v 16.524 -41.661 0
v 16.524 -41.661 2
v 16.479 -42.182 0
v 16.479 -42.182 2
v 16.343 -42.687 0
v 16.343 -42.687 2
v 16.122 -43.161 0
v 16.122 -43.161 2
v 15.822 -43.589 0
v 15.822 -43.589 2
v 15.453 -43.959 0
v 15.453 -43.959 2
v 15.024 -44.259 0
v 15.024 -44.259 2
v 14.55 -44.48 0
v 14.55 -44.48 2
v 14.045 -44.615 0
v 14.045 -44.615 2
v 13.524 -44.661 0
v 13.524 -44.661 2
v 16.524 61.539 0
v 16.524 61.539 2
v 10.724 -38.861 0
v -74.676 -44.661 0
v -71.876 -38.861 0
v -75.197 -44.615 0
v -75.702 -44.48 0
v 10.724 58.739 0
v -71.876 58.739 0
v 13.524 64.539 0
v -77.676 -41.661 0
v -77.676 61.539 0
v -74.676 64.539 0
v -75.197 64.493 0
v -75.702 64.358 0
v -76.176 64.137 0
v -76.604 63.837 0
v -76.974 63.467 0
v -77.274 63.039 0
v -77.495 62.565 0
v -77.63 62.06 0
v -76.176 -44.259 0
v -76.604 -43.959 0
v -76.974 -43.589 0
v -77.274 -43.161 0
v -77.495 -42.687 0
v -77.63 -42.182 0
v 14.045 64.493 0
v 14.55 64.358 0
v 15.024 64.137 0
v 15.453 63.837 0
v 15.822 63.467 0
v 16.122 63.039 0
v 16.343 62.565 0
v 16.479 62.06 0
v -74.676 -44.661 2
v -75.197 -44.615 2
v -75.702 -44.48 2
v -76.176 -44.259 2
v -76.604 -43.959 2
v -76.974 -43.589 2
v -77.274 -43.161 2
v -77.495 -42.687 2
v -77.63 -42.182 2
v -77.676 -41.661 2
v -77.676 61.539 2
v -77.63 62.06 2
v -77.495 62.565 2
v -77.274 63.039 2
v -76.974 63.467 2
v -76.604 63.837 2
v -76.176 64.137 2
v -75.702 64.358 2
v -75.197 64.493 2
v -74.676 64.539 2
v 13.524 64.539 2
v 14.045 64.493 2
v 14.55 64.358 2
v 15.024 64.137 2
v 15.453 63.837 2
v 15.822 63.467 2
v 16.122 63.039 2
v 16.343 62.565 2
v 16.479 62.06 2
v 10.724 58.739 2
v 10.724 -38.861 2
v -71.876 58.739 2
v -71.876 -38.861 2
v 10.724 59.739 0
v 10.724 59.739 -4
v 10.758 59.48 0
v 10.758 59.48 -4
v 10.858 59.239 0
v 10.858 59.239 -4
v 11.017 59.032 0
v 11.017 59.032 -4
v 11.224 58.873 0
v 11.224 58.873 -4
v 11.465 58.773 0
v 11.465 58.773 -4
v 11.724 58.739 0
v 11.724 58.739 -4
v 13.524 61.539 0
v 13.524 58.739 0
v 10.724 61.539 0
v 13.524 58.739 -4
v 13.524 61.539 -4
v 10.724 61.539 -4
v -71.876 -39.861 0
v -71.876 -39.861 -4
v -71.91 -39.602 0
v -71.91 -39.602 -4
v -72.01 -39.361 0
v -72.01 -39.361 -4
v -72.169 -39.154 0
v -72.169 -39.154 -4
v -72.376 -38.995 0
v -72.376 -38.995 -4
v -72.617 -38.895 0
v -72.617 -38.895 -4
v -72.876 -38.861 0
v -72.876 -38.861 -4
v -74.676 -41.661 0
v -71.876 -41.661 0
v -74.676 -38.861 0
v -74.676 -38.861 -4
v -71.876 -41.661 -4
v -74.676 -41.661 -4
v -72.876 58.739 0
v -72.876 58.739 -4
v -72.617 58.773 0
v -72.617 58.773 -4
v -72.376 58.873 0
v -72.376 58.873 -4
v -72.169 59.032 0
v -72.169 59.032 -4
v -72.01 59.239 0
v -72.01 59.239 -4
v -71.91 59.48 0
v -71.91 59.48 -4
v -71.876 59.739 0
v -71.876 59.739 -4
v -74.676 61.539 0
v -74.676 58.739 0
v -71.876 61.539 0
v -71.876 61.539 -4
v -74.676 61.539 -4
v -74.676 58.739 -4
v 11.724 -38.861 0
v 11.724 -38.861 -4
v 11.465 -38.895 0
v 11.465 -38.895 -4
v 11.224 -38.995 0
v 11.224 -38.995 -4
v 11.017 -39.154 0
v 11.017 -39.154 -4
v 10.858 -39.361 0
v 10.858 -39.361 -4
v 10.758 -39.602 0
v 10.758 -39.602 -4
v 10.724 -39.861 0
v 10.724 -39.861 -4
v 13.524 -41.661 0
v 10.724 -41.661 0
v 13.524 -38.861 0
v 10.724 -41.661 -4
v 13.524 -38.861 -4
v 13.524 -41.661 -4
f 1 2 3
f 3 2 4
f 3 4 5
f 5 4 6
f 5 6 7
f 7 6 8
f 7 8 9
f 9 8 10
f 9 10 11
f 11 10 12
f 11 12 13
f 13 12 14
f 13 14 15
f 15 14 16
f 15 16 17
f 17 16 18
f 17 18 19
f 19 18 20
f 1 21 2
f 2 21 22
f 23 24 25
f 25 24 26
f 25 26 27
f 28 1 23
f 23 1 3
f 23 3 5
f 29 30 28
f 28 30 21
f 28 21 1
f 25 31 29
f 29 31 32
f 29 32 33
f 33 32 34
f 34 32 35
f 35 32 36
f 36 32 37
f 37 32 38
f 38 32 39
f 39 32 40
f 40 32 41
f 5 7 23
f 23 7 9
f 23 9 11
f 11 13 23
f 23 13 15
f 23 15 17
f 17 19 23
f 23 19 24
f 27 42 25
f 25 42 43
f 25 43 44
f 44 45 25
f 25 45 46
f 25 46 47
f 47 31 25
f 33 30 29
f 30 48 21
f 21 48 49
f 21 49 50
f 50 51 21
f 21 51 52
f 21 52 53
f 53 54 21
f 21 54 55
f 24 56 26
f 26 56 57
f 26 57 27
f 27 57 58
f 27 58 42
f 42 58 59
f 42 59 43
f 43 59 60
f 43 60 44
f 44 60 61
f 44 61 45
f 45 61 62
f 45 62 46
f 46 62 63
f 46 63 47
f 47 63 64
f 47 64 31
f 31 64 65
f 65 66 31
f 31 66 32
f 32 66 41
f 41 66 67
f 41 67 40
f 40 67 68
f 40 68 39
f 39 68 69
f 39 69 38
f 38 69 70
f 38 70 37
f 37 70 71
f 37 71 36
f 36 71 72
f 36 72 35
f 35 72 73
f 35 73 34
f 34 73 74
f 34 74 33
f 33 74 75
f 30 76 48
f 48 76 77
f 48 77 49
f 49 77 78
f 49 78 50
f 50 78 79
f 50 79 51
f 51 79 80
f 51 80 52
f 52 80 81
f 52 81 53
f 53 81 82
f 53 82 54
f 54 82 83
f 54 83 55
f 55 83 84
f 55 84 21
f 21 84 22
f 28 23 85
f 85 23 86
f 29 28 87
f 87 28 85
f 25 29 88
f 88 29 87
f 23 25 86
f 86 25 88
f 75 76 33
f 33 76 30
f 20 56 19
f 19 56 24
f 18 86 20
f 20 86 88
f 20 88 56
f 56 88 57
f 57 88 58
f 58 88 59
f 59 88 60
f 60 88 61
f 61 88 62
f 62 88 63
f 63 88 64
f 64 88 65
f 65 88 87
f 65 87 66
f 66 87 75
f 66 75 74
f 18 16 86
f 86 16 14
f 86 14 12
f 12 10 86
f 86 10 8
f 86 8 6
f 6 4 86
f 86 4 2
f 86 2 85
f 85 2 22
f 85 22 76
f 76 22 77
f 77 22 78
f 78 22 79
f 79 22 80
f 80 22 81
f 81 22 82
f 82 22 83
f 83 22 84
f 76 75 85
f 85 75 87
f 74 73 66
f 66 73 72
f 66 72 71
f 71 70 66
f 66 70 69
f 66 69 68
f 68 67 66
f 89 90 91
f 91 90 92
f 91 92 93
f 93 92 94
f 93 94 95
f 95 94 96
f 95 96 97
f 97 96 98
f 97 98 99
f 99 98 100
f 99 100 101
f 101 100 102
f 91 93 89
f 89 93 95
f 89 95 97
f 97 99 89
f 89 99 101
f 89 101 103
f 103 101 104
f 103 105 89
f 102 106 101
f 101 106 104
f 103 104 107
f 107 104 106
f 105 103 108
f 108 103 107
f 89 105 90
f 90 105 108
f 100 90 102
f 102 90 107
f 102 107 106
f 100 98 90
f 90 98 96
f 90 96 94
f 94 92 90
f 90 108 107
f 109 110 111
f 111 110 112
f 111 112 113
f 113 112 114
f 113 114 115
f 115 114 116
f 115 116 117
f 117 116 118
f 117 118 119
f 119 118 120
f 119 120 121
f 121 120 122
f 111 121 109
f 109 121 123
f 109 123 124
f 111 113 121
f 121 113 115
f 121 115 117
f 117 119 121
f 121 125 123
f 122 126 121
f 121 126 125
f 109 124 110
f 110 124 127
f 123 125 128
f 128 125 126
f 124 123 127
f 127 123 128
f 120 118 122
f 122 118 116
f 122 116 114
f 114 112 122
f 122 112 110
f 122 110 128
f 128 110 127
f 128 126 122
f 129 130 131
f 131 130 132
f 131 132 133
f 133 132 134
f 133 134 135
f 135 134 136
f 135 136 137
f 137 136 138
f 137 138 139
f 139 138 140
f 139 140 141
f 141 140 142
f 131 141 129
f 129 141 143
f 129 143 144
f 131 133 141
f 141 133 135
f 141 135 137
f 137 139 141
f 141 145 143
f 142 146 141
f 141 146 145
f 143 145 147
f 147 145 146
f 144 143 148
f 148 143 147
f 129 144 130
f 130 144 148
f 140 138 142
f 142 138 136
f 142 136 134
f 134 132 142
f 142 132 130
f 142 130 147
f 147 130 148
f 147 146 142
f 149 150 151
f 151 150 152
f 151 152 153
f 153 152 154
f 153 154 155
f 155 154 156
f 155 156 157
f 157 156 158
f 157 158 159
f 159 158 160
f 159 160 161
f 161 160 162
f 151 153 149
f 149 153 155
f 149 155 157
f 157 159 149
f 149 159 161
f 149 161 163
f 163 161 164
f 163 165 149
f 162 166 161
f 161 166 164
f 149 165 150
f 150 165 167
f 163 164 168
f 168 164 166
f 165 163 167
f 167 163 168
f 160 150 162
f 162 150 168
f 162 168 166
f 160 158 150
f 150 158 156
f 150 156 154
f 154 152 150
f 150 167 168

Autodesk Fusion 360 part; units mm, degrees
sketch "Sketch1" plane through (0, 0, 0) normal (0, 0, 1) x (1, 0, 0)
  line L0 (-77.6757, 64.539) -> (16.5243, 64.539)
  line L1 (16.5243, 64.539) -> (16.5243, -44.661)
  line L2 (16.5243, -44.661) -> (-77.6757, -44.661)
  line L3 (-77.6757, -44.661) -> (-77.6757, 64.539)
  line L4 (-74.6757, 61.539) -> (13.5243, 61.539)
  line L5 (13.5243, 61.539) -> (13.5243, -41.661)
  line L6 (13.5243, -41.661) -> (-74.6757, -41.661)
  line L7 (-74.6757, -41.661) -> (-74.6757, 61.539)
  line L8 (-74.6757, 61.539) -> (-71.8757, 61.539)
  line L9 (-71.8757, 61.539) -> (-71.8757, 58.739)
  line L10 (-71.8757, 58.739) -> (-74.6757, 58.739)
  line L11 (-74.6757, 58.739) -> (-74.6757, 61.539)
  line L12 (13.5243, 61.539) -> (10.7243, 61.539)
  line L13 (10.7243, 61.539) -> (10.7243, 58.739)
  line L14 (10.7243, 58.739) -> (13.5243, 58.739)
  line L15 (13.5243, 58.739) -> (13.5243, 61.539)
  line L16 (-74.6757, -41.661) -> (-71.8757, -41.661)
  line L17 (-71.8757, -41.661) -> (-71.8757, -38.861)
  line L18 (-71.8757, -38.861) -> (-74.6757, -38.861)
  line L19 (-74.6757, -38.861) -> (-74.6757, -41.661)
  line L20 (13.5243, -41.661) -> (10.7243, -41.661)
  line L21 (10.7243, -41.661) -> (10.7243, -38.861)
  line L22 (10.7243, -38.861) -> (13.5243, -38.861)
  line L23 (13.5243, -38.861) -> (13.5243, -41.661)
  line L24 (-71.8757, -38.861) -> (10.7243, -38.861)
  line L25 (10.7243, -38.861) -> (10.7243, -41.661)
  line L26 (10.7243, -41.661) -> (-71.8757, -41.661)
  line L27 (-71.8757, -41.661) -> (-71.8757, -38.861)
  line L28 (-71.8757, 58.739) -> (10.7243, 58.739)
  line L29 (10.7243, 58.739) -> (10.7243, 61.539)
  line L30 (10.7243, 61.539) -> (-71.8757, 61.539)
  line L31 (-71.8757, 61.539) -> (-71.8757, 58.739)
  line L32 (-71.8757, 58.739) -> (-74.6757, 58.739)
  line L33 (-74.6757, 58.739) -> (-74.6757, -38.861)
  line L34 (-74.6757, -38.861) -> (-71.8757, -38.861)
  line L35 (-71.8757, -38.861) -> (-71.8757, 58.739)
  line L36 (13.5243, -38.861) -> (10.7243, -38.861)
  line L37 (10.7243, -38.861) -> (10.7243, 58.739)
  line L38 (10.7243, 58.739) -> (13.5243, 58.739)
  line L39 (13.5243, 58.739) -> (13.5243, -38.861)
  dimension "d1" = 94.2
  dimension "d2" = 109.2
  dimension "d3" = 88.2
  dimension "d4" = 103.2
  dimension "d5" = 3
  dimension "d6" = 3
  dimension "d7" = 2.8
  dimension "d8" = 2.8
  dimension "d9" = 2.8
  dimension "d10" = 2.8
  dimension "d11" = 2.8
  dimension "d12" = 2.8
  dimension "d13" = 2.8
  dimension "d14" = 2.8
extrude "Extrude1" add sketch "Sketch1" along normal blind 2 contours L0 L1 L2 L3 | L4 L7 L8 L9 L10 L11 L31 L32 | L4 L9 L13 L28 L29 L30 L31 | L7 L10 L18 L32 L33 L34 L35 | L4 L5 L12 L13 L14 L15 L29 L38 | L6 L7 L16 L17 L18 L19 L27 L34 | L5 L14 L22 L36 L37 L38 L39 | L6 L17 L21 L24 L25 L26 L27 | L5 L6 L20 L21 L22 L23 L25 L36 makes body 1
extrude "Extrude2" add sketch "Sketch1" against normal blind 4 separate body contours L4 L7 L8 L9 L10 L11 L31 L32 | L4 L5 L12 L13 L14 L15 L29 L38 | L6 L7 L16 L17 L18 L19 L27 L34 | L5 L6 L20 L21 L22 L23 L25 L36 makes body 2 at (13.5243, 60.6057, -1.3333) makes body 3 at (-72.809, -38.861, -1.3333) makes body 4 at (-73.7424, 61.539, -1.3333) makes body 5 at (13.5243, -39.7943, -1.3333)
fillet "Fillet1" radius 3 4 edges at (16.5243, 64.539, 1) (-77.6757, 64.539, 1) (-77.6757, -44.661, 1) (16.5243, -44.661, 1) on bodies 1
fillet "Fillet2" radius 1 4 edges at (10.7243, 58.739, -2) (-71.8757, -38.861, -2) (-71.8757, 58.739, -2) (10.7243, -38.861, -2) on bodies 2 3 4 5
